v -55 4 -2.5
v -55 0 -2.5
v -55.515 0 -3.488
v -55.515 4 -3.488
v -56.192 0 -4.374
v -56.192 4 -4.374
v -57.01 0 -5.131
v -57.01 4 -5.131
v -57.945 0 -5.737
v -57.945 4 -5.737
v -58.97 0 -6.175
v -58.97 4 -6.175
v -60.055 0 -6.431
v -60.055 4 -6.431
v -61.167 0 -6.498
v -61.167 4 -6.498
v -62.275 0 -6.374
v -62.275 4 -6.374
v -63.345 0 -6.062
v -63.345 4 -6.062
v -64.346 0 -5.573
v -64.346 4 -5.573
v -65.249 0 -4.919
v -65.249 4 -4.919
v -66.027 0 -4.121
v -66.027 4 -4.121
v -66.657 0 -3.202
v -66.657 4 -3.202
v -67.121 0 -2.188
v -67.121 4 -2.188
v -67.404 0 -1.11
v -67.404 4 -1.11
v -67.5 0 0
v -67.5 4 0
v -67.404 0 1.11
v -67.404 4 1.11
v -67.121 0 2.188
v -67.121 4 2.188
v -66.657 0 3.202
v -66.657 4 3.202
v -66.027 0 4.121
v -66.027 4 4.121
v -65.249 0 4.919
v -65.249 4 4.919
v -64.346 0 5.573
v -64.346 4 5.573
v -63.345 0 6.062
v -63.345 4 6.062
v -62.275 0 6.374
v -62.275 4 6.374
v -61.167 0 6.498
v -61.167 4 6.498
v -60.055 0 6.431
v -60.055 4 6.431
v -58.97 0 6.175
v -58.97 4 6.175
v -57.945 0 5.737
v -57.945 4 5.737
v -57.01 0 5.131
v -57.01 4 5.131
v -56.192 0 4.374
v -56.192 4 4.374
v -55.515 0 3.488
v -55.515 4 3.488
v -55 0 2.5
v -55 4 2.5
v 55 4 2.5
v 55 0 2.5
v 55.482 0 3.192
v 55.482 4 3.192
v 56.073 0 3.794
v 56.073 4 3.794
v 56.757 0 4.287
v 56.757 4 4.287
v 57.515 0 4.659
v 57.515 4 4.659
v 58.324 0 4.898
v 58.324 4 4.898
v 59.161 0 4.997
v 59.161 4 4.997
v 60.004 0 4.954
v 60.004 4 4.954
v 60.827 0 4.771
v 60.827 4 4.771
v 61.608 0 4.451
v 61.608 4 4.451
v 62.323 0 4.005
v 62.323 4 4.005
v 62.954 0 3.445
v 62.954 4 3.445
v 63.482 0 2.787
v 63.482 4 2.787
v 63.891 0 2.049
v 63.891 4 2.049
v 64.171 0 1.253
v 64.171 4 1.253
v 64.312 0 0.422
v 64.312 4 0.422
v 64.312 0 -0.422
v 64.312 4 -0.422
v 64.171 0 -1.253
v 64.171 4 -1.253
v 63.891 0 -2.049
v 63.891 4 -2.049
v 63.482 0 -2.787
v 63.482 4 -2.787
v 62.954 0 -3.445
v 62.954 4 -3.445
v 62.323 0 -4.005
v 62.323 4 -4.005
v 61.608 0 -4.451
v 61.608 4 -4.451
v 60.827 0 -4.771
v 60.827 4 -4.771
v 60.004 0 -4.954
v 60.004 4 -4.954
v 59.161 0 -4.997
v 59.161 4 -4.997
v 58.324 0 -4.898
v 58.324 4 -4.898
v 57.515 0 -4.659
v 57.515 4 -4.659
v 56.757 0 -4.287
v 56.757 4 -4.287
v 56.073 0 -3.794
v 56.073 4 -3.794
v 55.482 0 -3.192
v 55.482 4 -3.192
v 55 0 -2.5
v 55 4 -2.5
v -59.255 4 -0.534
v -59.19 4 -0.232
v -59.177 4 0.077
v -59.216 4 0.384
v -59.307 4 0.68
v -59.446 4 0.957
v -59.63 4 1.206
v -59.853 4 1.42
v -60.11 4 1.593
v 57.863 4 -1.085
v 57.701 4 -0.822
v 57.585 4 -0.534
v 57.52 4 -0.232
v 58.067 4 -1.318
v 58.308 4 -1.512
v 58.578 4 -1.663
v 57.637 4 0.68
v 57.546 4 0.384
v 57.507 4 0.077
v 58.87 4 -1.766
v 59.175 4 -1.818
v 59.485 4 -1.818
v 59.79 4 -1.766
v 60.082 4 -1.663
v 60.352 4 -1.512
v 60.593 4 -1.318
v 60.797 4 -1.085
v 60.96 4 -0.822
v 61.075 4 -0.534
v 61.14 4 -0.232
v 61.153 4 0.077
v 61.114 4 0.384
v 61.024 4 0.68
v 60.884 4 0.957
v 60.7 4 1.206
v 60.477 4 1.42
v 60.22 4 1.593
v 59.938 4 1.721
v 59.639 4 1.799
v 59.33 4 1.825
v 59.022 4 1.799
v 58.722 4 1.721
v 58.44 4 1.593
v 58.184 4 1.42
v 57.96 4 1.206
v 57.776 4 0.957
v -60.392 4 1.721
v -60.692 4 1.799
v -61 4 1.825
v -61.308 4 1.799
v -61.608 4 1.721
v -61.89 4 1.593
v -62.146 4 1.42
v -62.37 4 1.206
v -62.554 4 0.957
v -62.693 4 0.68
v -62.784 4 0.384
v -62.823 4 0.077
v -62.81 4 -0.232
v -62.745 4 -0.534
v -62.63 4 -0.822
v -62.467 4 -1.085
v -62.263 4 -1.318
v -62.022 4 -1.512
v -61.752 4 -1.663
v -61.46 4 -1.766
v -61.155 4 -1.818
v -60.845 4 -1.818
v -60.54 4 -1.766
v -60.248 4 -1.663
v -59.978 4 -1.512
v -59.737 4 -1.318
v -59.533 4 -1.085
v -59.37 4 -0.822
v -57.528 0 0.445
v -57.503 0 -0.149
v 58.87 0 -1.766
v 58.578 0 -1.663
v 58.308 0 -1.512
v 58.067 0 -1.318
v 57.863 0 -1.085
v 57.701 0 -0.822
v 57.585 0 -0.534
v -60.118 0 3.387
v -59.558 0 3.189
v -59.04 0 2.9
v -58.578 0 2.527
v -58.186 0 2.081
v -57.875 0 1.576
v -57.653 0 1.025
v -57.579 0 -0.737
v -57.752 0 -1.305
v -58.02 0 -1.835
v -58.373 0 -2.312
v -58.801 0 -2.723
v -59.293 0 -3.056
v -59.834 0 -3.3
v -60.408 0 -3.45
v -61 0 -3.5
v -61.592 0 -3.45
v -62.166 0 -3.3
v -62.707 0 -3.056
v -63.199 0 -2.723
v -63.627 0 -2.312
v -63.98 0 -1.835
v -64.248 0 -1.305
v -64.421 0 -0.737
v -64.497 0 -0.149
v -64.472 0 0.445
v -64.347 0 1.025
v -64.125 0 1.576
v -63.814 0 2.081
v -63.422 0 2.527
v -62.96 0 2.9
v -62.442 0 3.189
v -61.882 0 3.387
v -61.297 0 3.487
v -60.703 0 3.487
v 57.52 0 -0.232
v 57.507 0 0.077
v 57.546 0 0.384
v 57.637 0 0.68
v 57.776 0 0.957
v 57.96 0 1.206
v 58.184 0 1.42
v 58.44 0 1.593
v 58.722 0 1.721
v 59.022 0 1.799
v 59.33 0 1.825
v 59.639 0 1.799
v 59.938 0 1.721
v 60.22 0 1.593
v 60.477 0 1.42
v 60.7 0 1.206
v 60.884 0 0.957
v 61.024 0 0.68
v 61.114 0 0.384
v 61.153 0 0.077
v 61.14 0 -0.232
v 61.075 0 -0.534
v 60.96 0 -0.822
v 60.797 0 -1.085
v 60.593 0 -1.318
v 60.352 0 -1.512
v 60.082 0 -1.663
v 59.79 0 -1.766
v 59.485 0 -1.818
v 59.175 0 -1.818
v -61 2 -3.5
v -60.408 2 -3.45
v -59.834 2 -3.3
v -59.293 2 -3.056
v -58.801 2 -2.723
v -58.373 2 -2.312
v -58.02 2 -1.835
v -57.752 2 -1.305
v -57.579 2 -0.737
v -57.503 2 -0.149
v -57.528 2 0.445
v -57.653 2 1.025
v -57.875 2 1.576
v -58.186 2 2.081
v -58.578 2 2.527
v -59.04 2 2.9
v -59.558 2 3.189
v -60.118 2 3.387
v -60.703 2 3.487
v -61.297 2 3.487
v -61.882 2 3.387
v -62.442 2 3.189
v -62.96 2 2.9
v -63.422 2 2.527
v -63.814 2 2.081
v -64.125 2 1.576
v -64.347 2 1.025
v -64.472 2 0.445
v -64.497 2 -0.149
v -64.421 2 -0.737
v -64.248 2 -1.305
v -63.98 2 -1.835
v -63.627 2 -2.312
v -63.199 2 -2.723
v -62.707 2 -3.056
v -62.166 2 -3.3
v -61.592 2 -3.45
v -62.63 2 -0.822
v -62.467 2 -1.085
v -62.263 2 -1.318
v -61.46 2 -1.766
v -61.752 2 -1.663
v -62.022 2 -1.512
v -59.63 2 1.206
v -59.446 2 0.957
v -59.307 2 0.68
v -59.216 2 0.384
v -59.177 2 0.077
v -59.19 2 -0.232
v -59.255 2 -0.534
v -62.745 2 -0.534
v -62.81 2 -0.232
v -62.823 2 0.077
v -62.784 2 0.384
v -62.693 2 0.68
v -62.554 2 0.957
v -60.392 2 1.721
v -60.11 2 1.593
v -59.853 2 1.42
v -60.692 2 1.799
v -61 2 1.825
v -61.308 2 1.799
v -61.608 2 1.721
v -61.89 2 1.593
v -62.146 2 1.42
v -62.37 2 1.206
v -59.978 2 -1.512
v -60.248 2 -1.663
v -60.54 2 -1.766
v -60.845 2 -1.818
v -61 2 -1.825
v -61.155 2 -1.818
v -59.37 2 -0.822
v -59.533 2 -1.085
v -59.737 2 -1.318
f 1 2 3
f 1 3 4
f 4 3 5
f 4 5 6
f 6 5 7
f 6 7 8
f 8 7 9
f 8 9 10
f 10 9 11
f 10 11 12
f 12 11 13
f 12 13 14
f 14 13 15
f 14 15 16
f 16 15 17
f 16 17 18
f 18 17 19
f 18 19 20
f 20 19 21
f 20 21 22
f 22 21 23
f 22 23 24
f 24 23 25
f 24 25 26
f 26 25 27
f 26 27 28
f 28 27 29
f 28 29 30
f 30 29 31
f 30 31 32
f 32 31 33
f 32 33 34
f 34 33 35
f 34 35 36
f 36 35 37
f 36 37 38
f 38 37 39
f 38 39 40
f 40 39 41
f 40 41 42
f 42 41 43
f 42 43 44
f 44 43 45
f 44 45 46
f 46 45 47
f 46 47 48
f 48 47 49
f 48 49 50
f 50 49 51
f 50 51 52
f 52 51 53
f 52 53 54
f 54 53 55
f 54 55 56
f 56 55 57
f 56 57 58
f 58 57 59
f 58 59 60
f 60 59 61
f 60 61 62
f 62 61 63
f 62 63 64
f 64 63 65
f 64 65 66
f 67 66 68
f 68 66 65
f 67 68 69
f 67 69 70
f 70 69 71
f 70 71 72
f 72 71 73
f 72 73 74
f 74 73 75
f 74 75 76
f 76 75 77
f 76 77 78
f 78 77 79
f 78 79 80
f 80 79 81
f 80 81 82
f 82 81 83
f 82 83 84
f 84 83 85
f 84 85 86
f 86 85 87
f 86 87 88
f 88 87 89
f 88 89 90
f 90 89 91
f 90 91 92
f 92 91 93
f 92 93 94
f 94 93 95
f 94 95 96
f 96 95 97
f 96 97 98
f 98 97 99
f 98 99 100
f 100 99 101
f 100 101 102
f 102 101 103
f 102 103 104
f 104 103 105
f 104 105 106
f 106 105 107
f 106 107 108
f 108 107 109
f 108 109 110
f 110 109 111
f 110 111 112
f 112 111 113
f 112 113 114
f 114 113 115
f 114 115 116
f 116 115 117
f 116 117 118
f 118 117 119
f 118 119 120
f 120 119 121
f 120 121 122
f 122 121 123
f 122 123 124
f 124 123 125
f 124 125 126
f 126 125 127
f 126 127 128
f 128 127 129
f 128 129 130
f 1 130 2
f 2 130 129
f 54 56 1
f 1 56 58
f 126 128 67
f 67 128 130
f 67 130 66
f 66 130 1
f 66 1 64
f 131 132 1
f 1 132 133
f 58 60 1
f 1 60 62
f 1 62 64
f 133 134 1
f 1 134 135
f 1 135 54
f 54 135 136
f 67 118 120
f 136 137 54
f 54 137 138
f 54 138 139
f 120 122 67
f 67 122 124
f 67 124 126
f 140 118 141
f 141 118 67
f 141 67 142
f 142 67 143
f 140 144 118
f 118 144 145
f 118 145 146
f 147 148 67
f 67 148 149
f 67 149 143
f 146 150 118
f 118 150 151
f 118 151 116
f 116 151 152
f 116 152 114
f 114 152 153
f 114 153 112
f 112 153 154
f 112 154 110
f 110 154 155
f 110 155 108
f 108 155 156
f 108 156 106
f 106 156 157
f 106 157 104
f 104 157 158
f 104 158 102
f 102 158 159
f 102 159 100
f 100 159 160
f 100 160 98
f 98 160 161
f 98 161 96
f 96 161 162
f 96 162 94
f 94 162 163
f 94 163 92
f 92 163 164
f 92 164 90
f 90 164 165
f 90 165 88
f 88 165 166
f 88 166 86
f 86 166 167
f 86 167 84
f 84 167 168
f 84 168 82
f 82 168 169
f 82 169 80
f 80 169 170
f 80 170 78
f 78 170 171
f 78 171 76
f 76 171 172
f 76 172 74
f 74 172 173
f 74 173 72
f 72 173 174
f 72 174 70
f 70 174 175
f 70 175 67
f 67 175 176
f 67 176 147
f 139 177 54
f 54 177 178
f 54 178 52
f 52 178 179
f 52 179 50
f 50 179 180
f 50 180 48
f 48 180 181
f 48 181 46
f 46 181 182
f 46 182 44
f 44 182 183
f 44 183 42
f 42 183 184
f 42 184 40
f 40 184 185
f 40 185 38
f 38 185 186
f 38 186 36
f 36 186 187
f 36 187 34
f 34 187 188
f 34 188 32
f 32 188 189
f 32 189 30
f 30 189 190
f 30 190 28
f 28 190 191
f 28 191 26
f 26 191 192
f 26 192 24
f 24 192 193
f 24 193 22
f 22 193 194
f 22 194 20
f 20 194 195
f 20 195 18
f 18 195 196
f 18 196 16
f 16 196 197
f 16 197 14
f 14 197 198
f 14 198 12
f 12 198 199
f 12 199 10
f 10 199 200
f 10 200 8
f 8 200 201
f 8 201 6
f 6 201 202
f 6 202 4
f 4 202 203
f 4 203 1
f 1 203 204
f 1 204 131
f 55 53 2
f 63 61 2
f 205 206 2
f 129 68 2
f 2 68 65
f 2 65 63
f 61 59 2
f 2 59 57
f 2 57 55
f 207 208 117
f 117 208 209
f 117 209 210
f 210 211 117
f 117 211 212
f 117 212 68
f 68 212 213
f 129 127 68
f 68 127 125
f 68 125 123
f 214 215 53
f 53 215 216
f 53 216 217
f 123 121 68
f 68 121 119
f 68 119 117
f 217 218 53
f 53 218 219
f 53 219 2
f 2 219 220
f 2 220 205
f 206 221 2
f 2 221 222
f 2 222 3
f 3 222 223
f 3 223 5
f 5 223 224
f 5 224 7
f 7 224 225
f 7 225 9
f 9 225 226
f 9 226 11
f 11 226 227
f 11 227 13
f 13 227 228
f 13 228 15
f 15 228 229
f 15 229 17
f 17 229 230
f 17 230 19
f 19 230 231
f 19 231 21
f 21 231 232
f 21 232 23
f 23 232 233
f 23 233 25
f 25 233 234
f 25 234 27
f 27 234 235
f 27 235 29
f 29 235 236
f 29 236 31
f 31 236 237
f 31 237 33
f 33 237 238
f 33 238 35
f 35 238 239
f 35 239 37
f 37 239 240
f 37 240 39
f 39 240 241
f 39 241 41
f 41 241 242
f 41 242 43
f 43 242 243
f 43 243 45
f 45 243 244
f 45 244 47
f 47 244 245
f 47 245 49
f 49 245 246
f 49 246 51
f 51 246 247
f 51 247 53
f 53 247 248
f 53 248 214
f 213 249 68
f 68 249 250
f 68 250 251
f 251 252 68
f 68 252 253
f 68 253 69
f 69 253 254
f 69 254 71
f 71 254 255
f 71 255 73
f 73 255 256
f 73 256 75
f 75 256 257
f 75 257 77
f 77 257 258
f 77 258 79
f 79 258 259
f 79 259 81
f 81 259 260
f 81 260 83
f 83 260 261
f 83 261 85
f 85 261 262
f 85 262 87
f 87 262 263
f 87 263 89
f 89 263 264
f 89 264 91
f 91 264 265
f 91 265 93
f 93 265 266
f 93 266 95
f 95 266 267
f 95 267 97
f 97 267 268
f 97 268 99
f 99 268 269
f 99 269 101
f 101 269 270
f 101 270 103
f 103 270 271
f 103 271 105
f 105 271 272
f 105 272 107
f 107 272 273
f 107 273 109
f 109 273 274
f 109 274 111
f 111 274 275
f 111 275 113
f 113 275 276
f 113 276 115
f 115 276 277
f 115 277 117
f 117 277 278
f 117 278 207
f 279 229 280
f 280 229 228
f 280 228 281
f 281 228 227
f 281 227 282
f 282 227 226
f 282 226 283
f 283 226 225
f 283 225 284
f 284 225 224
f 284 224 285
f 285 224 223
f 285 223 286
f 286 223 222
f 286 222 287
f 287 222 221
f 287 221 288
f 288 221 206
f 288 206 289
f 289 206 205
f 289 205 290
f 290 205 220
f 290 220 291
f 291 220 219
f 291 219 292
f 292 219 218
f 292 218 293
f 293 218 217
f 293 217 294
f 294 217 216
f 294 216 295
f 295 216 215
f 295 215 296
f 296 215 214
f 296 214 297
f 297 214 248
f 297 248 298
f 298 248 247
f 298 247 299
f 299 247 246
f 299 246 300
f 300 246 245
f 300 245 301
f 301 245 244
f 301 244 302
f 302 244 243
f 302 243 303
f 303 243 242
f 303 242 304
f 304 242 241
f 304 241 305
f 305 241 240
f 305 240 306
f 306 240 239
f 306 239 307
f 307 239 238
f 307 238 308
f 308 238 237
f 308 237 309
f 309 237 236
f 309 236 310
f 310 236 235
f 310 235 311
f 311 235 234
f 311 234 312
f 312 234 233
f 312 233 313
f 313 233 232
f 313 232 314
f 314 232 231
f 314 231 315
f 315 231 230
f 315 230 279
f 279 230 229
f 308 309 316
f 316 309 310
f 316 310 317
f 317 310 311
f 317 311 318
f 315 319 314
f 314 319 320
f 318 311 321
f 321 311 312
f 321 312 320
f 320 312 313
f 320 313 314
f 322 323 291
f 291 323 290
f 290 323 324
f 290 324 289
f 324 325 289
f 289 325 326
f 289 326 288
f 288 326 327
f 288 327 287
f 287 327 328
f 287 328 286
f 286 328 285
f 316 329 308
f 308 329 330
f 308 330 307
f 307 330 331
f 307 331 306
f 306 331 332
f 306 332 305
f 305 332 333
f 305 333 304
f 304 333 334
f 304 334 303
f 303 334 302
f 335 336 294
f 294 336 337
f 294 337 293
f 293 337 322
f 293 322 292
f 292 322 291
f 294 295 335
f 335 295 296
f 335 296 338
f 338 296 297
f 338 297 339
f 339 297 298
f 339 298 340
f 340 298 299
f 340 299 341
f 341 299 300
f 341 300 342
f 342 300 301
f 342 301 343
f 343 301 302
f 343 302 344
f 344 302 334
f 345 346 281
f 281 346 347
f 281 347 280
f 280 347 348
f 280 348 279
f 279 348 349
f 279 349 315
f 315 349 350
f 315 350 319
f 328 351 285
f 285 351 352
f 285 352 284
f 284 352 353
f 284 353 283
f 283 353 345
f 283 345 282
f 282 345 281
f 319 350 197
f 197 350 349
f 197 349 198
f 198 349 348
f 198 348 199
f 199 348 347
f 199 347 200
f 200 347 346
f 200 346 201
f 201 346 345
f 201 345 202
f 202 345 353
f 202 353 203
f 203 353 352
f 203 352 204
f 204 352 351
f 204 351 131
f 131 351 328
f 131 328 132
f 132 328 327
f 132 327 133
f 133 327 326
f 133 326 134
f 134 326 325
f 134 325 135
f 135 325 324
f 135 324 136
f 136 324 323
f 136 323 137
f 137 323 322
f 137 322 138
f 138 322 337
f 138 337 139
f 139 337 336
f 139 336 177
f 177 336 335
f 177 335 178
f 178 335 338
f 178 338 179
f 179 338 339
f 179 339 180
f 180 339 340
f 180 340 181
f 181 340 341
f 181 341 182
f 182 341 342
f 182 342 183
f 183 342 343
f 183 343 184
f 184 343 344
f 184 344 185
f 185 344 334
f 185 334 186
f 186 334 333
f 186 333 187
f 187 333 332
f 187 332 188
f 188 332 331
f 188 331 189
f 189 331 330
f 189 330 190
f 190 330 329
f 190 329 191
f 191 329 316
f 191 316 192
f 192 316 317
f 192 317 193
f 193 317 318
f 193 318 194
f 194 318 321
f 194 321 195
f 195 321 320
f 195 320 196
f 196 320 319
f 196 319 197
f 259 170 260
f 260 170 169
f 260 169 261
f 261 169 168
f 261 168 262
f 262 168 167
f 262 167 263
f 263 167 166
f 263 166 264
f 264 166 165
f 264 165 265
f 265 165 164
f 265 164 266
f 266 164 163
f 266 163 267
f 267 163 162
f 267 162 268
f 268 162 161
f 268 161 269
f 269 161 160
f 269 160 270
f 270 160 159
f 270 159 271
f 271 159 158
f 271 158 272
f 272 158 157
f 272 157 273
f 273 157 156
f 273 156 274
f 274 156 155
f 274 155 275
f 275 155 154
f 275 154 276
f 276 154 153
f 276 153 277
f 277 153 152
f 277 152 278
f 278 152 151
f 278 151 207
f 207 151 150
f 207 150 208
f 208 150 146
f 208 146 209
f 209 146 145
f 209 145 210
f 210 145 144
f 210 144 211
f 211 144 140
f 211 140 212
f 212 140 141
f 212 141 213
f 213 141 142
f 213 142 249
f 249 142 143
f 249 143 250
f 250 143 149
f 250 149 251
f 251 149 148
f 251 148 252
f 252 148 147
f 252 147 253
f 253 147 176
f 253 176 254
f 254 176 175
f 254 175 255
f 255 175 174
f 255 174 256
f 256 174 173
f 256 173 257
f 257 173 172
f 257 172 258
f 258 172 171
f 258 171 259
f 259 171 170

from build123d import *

# Parameters (mm, degrees)
BOSS_EXTRUDE1_DEPTH = 4
SKETCH3_R           = 3.5
CUT_EXTRUDE2_DEPTH  = 2
SKETCH2_R           = 1.825
CUT_EXTRUDE1_DEPTH  = 68.930111144


with BuildPart() as part:
    # Sketch1 → Boss-Extrude1 (new body)
    with BuildSketch(Plane(origin=(0, 0, 0), x_dir=(1, 0, 0), z_dir=(0, 1, 0))):
        with BuildLine():
            Line((-55, 2.5), (55, 2.5))
            ThreePointArc((55, 2.5), (64.330127019, 0), (55, -2.5))
            Line((55, -2.5), (-55, -2.5))
            ThreePointArc((-55, -2.5), (-67.5, 0), (-55, 2.5))
        make_face()
    extrude(amount=BOSS_EXTRUDE1_DEPTH)

    # Sketch3 → Cut-Extrude2 (cut)
    with BuildSketch(Plane.XZ):
        with Locations(Location((-61, 0, 0), (0, 0, 270))):
            Circle(SKETCH3_R)
    extrude(amount=-CUT_EXTRUDE2_DEPTH, mode=Mode.SUBTRACT)

    # Sketch2 → Cut-Extrude1 (cut, through all)
    with BuildSketch(Plane(origin=(0, 4, 0), x_dir=(1, 0, 0), z_dir=(0, 1, 0))):
        with Locations(Location((-61, 0, 0), (0, 0, 270))):
            Circle(SKETCH2_R)
        with Locations(Location((59.330127019, 0, 0), (0, 0, 270))):
            Circle(SKETCH2_R)
    extrude(amount=-CUT_EXTRUDE1_DEPTH, mode=Mode.SUBTRACT)


solid = part.part
